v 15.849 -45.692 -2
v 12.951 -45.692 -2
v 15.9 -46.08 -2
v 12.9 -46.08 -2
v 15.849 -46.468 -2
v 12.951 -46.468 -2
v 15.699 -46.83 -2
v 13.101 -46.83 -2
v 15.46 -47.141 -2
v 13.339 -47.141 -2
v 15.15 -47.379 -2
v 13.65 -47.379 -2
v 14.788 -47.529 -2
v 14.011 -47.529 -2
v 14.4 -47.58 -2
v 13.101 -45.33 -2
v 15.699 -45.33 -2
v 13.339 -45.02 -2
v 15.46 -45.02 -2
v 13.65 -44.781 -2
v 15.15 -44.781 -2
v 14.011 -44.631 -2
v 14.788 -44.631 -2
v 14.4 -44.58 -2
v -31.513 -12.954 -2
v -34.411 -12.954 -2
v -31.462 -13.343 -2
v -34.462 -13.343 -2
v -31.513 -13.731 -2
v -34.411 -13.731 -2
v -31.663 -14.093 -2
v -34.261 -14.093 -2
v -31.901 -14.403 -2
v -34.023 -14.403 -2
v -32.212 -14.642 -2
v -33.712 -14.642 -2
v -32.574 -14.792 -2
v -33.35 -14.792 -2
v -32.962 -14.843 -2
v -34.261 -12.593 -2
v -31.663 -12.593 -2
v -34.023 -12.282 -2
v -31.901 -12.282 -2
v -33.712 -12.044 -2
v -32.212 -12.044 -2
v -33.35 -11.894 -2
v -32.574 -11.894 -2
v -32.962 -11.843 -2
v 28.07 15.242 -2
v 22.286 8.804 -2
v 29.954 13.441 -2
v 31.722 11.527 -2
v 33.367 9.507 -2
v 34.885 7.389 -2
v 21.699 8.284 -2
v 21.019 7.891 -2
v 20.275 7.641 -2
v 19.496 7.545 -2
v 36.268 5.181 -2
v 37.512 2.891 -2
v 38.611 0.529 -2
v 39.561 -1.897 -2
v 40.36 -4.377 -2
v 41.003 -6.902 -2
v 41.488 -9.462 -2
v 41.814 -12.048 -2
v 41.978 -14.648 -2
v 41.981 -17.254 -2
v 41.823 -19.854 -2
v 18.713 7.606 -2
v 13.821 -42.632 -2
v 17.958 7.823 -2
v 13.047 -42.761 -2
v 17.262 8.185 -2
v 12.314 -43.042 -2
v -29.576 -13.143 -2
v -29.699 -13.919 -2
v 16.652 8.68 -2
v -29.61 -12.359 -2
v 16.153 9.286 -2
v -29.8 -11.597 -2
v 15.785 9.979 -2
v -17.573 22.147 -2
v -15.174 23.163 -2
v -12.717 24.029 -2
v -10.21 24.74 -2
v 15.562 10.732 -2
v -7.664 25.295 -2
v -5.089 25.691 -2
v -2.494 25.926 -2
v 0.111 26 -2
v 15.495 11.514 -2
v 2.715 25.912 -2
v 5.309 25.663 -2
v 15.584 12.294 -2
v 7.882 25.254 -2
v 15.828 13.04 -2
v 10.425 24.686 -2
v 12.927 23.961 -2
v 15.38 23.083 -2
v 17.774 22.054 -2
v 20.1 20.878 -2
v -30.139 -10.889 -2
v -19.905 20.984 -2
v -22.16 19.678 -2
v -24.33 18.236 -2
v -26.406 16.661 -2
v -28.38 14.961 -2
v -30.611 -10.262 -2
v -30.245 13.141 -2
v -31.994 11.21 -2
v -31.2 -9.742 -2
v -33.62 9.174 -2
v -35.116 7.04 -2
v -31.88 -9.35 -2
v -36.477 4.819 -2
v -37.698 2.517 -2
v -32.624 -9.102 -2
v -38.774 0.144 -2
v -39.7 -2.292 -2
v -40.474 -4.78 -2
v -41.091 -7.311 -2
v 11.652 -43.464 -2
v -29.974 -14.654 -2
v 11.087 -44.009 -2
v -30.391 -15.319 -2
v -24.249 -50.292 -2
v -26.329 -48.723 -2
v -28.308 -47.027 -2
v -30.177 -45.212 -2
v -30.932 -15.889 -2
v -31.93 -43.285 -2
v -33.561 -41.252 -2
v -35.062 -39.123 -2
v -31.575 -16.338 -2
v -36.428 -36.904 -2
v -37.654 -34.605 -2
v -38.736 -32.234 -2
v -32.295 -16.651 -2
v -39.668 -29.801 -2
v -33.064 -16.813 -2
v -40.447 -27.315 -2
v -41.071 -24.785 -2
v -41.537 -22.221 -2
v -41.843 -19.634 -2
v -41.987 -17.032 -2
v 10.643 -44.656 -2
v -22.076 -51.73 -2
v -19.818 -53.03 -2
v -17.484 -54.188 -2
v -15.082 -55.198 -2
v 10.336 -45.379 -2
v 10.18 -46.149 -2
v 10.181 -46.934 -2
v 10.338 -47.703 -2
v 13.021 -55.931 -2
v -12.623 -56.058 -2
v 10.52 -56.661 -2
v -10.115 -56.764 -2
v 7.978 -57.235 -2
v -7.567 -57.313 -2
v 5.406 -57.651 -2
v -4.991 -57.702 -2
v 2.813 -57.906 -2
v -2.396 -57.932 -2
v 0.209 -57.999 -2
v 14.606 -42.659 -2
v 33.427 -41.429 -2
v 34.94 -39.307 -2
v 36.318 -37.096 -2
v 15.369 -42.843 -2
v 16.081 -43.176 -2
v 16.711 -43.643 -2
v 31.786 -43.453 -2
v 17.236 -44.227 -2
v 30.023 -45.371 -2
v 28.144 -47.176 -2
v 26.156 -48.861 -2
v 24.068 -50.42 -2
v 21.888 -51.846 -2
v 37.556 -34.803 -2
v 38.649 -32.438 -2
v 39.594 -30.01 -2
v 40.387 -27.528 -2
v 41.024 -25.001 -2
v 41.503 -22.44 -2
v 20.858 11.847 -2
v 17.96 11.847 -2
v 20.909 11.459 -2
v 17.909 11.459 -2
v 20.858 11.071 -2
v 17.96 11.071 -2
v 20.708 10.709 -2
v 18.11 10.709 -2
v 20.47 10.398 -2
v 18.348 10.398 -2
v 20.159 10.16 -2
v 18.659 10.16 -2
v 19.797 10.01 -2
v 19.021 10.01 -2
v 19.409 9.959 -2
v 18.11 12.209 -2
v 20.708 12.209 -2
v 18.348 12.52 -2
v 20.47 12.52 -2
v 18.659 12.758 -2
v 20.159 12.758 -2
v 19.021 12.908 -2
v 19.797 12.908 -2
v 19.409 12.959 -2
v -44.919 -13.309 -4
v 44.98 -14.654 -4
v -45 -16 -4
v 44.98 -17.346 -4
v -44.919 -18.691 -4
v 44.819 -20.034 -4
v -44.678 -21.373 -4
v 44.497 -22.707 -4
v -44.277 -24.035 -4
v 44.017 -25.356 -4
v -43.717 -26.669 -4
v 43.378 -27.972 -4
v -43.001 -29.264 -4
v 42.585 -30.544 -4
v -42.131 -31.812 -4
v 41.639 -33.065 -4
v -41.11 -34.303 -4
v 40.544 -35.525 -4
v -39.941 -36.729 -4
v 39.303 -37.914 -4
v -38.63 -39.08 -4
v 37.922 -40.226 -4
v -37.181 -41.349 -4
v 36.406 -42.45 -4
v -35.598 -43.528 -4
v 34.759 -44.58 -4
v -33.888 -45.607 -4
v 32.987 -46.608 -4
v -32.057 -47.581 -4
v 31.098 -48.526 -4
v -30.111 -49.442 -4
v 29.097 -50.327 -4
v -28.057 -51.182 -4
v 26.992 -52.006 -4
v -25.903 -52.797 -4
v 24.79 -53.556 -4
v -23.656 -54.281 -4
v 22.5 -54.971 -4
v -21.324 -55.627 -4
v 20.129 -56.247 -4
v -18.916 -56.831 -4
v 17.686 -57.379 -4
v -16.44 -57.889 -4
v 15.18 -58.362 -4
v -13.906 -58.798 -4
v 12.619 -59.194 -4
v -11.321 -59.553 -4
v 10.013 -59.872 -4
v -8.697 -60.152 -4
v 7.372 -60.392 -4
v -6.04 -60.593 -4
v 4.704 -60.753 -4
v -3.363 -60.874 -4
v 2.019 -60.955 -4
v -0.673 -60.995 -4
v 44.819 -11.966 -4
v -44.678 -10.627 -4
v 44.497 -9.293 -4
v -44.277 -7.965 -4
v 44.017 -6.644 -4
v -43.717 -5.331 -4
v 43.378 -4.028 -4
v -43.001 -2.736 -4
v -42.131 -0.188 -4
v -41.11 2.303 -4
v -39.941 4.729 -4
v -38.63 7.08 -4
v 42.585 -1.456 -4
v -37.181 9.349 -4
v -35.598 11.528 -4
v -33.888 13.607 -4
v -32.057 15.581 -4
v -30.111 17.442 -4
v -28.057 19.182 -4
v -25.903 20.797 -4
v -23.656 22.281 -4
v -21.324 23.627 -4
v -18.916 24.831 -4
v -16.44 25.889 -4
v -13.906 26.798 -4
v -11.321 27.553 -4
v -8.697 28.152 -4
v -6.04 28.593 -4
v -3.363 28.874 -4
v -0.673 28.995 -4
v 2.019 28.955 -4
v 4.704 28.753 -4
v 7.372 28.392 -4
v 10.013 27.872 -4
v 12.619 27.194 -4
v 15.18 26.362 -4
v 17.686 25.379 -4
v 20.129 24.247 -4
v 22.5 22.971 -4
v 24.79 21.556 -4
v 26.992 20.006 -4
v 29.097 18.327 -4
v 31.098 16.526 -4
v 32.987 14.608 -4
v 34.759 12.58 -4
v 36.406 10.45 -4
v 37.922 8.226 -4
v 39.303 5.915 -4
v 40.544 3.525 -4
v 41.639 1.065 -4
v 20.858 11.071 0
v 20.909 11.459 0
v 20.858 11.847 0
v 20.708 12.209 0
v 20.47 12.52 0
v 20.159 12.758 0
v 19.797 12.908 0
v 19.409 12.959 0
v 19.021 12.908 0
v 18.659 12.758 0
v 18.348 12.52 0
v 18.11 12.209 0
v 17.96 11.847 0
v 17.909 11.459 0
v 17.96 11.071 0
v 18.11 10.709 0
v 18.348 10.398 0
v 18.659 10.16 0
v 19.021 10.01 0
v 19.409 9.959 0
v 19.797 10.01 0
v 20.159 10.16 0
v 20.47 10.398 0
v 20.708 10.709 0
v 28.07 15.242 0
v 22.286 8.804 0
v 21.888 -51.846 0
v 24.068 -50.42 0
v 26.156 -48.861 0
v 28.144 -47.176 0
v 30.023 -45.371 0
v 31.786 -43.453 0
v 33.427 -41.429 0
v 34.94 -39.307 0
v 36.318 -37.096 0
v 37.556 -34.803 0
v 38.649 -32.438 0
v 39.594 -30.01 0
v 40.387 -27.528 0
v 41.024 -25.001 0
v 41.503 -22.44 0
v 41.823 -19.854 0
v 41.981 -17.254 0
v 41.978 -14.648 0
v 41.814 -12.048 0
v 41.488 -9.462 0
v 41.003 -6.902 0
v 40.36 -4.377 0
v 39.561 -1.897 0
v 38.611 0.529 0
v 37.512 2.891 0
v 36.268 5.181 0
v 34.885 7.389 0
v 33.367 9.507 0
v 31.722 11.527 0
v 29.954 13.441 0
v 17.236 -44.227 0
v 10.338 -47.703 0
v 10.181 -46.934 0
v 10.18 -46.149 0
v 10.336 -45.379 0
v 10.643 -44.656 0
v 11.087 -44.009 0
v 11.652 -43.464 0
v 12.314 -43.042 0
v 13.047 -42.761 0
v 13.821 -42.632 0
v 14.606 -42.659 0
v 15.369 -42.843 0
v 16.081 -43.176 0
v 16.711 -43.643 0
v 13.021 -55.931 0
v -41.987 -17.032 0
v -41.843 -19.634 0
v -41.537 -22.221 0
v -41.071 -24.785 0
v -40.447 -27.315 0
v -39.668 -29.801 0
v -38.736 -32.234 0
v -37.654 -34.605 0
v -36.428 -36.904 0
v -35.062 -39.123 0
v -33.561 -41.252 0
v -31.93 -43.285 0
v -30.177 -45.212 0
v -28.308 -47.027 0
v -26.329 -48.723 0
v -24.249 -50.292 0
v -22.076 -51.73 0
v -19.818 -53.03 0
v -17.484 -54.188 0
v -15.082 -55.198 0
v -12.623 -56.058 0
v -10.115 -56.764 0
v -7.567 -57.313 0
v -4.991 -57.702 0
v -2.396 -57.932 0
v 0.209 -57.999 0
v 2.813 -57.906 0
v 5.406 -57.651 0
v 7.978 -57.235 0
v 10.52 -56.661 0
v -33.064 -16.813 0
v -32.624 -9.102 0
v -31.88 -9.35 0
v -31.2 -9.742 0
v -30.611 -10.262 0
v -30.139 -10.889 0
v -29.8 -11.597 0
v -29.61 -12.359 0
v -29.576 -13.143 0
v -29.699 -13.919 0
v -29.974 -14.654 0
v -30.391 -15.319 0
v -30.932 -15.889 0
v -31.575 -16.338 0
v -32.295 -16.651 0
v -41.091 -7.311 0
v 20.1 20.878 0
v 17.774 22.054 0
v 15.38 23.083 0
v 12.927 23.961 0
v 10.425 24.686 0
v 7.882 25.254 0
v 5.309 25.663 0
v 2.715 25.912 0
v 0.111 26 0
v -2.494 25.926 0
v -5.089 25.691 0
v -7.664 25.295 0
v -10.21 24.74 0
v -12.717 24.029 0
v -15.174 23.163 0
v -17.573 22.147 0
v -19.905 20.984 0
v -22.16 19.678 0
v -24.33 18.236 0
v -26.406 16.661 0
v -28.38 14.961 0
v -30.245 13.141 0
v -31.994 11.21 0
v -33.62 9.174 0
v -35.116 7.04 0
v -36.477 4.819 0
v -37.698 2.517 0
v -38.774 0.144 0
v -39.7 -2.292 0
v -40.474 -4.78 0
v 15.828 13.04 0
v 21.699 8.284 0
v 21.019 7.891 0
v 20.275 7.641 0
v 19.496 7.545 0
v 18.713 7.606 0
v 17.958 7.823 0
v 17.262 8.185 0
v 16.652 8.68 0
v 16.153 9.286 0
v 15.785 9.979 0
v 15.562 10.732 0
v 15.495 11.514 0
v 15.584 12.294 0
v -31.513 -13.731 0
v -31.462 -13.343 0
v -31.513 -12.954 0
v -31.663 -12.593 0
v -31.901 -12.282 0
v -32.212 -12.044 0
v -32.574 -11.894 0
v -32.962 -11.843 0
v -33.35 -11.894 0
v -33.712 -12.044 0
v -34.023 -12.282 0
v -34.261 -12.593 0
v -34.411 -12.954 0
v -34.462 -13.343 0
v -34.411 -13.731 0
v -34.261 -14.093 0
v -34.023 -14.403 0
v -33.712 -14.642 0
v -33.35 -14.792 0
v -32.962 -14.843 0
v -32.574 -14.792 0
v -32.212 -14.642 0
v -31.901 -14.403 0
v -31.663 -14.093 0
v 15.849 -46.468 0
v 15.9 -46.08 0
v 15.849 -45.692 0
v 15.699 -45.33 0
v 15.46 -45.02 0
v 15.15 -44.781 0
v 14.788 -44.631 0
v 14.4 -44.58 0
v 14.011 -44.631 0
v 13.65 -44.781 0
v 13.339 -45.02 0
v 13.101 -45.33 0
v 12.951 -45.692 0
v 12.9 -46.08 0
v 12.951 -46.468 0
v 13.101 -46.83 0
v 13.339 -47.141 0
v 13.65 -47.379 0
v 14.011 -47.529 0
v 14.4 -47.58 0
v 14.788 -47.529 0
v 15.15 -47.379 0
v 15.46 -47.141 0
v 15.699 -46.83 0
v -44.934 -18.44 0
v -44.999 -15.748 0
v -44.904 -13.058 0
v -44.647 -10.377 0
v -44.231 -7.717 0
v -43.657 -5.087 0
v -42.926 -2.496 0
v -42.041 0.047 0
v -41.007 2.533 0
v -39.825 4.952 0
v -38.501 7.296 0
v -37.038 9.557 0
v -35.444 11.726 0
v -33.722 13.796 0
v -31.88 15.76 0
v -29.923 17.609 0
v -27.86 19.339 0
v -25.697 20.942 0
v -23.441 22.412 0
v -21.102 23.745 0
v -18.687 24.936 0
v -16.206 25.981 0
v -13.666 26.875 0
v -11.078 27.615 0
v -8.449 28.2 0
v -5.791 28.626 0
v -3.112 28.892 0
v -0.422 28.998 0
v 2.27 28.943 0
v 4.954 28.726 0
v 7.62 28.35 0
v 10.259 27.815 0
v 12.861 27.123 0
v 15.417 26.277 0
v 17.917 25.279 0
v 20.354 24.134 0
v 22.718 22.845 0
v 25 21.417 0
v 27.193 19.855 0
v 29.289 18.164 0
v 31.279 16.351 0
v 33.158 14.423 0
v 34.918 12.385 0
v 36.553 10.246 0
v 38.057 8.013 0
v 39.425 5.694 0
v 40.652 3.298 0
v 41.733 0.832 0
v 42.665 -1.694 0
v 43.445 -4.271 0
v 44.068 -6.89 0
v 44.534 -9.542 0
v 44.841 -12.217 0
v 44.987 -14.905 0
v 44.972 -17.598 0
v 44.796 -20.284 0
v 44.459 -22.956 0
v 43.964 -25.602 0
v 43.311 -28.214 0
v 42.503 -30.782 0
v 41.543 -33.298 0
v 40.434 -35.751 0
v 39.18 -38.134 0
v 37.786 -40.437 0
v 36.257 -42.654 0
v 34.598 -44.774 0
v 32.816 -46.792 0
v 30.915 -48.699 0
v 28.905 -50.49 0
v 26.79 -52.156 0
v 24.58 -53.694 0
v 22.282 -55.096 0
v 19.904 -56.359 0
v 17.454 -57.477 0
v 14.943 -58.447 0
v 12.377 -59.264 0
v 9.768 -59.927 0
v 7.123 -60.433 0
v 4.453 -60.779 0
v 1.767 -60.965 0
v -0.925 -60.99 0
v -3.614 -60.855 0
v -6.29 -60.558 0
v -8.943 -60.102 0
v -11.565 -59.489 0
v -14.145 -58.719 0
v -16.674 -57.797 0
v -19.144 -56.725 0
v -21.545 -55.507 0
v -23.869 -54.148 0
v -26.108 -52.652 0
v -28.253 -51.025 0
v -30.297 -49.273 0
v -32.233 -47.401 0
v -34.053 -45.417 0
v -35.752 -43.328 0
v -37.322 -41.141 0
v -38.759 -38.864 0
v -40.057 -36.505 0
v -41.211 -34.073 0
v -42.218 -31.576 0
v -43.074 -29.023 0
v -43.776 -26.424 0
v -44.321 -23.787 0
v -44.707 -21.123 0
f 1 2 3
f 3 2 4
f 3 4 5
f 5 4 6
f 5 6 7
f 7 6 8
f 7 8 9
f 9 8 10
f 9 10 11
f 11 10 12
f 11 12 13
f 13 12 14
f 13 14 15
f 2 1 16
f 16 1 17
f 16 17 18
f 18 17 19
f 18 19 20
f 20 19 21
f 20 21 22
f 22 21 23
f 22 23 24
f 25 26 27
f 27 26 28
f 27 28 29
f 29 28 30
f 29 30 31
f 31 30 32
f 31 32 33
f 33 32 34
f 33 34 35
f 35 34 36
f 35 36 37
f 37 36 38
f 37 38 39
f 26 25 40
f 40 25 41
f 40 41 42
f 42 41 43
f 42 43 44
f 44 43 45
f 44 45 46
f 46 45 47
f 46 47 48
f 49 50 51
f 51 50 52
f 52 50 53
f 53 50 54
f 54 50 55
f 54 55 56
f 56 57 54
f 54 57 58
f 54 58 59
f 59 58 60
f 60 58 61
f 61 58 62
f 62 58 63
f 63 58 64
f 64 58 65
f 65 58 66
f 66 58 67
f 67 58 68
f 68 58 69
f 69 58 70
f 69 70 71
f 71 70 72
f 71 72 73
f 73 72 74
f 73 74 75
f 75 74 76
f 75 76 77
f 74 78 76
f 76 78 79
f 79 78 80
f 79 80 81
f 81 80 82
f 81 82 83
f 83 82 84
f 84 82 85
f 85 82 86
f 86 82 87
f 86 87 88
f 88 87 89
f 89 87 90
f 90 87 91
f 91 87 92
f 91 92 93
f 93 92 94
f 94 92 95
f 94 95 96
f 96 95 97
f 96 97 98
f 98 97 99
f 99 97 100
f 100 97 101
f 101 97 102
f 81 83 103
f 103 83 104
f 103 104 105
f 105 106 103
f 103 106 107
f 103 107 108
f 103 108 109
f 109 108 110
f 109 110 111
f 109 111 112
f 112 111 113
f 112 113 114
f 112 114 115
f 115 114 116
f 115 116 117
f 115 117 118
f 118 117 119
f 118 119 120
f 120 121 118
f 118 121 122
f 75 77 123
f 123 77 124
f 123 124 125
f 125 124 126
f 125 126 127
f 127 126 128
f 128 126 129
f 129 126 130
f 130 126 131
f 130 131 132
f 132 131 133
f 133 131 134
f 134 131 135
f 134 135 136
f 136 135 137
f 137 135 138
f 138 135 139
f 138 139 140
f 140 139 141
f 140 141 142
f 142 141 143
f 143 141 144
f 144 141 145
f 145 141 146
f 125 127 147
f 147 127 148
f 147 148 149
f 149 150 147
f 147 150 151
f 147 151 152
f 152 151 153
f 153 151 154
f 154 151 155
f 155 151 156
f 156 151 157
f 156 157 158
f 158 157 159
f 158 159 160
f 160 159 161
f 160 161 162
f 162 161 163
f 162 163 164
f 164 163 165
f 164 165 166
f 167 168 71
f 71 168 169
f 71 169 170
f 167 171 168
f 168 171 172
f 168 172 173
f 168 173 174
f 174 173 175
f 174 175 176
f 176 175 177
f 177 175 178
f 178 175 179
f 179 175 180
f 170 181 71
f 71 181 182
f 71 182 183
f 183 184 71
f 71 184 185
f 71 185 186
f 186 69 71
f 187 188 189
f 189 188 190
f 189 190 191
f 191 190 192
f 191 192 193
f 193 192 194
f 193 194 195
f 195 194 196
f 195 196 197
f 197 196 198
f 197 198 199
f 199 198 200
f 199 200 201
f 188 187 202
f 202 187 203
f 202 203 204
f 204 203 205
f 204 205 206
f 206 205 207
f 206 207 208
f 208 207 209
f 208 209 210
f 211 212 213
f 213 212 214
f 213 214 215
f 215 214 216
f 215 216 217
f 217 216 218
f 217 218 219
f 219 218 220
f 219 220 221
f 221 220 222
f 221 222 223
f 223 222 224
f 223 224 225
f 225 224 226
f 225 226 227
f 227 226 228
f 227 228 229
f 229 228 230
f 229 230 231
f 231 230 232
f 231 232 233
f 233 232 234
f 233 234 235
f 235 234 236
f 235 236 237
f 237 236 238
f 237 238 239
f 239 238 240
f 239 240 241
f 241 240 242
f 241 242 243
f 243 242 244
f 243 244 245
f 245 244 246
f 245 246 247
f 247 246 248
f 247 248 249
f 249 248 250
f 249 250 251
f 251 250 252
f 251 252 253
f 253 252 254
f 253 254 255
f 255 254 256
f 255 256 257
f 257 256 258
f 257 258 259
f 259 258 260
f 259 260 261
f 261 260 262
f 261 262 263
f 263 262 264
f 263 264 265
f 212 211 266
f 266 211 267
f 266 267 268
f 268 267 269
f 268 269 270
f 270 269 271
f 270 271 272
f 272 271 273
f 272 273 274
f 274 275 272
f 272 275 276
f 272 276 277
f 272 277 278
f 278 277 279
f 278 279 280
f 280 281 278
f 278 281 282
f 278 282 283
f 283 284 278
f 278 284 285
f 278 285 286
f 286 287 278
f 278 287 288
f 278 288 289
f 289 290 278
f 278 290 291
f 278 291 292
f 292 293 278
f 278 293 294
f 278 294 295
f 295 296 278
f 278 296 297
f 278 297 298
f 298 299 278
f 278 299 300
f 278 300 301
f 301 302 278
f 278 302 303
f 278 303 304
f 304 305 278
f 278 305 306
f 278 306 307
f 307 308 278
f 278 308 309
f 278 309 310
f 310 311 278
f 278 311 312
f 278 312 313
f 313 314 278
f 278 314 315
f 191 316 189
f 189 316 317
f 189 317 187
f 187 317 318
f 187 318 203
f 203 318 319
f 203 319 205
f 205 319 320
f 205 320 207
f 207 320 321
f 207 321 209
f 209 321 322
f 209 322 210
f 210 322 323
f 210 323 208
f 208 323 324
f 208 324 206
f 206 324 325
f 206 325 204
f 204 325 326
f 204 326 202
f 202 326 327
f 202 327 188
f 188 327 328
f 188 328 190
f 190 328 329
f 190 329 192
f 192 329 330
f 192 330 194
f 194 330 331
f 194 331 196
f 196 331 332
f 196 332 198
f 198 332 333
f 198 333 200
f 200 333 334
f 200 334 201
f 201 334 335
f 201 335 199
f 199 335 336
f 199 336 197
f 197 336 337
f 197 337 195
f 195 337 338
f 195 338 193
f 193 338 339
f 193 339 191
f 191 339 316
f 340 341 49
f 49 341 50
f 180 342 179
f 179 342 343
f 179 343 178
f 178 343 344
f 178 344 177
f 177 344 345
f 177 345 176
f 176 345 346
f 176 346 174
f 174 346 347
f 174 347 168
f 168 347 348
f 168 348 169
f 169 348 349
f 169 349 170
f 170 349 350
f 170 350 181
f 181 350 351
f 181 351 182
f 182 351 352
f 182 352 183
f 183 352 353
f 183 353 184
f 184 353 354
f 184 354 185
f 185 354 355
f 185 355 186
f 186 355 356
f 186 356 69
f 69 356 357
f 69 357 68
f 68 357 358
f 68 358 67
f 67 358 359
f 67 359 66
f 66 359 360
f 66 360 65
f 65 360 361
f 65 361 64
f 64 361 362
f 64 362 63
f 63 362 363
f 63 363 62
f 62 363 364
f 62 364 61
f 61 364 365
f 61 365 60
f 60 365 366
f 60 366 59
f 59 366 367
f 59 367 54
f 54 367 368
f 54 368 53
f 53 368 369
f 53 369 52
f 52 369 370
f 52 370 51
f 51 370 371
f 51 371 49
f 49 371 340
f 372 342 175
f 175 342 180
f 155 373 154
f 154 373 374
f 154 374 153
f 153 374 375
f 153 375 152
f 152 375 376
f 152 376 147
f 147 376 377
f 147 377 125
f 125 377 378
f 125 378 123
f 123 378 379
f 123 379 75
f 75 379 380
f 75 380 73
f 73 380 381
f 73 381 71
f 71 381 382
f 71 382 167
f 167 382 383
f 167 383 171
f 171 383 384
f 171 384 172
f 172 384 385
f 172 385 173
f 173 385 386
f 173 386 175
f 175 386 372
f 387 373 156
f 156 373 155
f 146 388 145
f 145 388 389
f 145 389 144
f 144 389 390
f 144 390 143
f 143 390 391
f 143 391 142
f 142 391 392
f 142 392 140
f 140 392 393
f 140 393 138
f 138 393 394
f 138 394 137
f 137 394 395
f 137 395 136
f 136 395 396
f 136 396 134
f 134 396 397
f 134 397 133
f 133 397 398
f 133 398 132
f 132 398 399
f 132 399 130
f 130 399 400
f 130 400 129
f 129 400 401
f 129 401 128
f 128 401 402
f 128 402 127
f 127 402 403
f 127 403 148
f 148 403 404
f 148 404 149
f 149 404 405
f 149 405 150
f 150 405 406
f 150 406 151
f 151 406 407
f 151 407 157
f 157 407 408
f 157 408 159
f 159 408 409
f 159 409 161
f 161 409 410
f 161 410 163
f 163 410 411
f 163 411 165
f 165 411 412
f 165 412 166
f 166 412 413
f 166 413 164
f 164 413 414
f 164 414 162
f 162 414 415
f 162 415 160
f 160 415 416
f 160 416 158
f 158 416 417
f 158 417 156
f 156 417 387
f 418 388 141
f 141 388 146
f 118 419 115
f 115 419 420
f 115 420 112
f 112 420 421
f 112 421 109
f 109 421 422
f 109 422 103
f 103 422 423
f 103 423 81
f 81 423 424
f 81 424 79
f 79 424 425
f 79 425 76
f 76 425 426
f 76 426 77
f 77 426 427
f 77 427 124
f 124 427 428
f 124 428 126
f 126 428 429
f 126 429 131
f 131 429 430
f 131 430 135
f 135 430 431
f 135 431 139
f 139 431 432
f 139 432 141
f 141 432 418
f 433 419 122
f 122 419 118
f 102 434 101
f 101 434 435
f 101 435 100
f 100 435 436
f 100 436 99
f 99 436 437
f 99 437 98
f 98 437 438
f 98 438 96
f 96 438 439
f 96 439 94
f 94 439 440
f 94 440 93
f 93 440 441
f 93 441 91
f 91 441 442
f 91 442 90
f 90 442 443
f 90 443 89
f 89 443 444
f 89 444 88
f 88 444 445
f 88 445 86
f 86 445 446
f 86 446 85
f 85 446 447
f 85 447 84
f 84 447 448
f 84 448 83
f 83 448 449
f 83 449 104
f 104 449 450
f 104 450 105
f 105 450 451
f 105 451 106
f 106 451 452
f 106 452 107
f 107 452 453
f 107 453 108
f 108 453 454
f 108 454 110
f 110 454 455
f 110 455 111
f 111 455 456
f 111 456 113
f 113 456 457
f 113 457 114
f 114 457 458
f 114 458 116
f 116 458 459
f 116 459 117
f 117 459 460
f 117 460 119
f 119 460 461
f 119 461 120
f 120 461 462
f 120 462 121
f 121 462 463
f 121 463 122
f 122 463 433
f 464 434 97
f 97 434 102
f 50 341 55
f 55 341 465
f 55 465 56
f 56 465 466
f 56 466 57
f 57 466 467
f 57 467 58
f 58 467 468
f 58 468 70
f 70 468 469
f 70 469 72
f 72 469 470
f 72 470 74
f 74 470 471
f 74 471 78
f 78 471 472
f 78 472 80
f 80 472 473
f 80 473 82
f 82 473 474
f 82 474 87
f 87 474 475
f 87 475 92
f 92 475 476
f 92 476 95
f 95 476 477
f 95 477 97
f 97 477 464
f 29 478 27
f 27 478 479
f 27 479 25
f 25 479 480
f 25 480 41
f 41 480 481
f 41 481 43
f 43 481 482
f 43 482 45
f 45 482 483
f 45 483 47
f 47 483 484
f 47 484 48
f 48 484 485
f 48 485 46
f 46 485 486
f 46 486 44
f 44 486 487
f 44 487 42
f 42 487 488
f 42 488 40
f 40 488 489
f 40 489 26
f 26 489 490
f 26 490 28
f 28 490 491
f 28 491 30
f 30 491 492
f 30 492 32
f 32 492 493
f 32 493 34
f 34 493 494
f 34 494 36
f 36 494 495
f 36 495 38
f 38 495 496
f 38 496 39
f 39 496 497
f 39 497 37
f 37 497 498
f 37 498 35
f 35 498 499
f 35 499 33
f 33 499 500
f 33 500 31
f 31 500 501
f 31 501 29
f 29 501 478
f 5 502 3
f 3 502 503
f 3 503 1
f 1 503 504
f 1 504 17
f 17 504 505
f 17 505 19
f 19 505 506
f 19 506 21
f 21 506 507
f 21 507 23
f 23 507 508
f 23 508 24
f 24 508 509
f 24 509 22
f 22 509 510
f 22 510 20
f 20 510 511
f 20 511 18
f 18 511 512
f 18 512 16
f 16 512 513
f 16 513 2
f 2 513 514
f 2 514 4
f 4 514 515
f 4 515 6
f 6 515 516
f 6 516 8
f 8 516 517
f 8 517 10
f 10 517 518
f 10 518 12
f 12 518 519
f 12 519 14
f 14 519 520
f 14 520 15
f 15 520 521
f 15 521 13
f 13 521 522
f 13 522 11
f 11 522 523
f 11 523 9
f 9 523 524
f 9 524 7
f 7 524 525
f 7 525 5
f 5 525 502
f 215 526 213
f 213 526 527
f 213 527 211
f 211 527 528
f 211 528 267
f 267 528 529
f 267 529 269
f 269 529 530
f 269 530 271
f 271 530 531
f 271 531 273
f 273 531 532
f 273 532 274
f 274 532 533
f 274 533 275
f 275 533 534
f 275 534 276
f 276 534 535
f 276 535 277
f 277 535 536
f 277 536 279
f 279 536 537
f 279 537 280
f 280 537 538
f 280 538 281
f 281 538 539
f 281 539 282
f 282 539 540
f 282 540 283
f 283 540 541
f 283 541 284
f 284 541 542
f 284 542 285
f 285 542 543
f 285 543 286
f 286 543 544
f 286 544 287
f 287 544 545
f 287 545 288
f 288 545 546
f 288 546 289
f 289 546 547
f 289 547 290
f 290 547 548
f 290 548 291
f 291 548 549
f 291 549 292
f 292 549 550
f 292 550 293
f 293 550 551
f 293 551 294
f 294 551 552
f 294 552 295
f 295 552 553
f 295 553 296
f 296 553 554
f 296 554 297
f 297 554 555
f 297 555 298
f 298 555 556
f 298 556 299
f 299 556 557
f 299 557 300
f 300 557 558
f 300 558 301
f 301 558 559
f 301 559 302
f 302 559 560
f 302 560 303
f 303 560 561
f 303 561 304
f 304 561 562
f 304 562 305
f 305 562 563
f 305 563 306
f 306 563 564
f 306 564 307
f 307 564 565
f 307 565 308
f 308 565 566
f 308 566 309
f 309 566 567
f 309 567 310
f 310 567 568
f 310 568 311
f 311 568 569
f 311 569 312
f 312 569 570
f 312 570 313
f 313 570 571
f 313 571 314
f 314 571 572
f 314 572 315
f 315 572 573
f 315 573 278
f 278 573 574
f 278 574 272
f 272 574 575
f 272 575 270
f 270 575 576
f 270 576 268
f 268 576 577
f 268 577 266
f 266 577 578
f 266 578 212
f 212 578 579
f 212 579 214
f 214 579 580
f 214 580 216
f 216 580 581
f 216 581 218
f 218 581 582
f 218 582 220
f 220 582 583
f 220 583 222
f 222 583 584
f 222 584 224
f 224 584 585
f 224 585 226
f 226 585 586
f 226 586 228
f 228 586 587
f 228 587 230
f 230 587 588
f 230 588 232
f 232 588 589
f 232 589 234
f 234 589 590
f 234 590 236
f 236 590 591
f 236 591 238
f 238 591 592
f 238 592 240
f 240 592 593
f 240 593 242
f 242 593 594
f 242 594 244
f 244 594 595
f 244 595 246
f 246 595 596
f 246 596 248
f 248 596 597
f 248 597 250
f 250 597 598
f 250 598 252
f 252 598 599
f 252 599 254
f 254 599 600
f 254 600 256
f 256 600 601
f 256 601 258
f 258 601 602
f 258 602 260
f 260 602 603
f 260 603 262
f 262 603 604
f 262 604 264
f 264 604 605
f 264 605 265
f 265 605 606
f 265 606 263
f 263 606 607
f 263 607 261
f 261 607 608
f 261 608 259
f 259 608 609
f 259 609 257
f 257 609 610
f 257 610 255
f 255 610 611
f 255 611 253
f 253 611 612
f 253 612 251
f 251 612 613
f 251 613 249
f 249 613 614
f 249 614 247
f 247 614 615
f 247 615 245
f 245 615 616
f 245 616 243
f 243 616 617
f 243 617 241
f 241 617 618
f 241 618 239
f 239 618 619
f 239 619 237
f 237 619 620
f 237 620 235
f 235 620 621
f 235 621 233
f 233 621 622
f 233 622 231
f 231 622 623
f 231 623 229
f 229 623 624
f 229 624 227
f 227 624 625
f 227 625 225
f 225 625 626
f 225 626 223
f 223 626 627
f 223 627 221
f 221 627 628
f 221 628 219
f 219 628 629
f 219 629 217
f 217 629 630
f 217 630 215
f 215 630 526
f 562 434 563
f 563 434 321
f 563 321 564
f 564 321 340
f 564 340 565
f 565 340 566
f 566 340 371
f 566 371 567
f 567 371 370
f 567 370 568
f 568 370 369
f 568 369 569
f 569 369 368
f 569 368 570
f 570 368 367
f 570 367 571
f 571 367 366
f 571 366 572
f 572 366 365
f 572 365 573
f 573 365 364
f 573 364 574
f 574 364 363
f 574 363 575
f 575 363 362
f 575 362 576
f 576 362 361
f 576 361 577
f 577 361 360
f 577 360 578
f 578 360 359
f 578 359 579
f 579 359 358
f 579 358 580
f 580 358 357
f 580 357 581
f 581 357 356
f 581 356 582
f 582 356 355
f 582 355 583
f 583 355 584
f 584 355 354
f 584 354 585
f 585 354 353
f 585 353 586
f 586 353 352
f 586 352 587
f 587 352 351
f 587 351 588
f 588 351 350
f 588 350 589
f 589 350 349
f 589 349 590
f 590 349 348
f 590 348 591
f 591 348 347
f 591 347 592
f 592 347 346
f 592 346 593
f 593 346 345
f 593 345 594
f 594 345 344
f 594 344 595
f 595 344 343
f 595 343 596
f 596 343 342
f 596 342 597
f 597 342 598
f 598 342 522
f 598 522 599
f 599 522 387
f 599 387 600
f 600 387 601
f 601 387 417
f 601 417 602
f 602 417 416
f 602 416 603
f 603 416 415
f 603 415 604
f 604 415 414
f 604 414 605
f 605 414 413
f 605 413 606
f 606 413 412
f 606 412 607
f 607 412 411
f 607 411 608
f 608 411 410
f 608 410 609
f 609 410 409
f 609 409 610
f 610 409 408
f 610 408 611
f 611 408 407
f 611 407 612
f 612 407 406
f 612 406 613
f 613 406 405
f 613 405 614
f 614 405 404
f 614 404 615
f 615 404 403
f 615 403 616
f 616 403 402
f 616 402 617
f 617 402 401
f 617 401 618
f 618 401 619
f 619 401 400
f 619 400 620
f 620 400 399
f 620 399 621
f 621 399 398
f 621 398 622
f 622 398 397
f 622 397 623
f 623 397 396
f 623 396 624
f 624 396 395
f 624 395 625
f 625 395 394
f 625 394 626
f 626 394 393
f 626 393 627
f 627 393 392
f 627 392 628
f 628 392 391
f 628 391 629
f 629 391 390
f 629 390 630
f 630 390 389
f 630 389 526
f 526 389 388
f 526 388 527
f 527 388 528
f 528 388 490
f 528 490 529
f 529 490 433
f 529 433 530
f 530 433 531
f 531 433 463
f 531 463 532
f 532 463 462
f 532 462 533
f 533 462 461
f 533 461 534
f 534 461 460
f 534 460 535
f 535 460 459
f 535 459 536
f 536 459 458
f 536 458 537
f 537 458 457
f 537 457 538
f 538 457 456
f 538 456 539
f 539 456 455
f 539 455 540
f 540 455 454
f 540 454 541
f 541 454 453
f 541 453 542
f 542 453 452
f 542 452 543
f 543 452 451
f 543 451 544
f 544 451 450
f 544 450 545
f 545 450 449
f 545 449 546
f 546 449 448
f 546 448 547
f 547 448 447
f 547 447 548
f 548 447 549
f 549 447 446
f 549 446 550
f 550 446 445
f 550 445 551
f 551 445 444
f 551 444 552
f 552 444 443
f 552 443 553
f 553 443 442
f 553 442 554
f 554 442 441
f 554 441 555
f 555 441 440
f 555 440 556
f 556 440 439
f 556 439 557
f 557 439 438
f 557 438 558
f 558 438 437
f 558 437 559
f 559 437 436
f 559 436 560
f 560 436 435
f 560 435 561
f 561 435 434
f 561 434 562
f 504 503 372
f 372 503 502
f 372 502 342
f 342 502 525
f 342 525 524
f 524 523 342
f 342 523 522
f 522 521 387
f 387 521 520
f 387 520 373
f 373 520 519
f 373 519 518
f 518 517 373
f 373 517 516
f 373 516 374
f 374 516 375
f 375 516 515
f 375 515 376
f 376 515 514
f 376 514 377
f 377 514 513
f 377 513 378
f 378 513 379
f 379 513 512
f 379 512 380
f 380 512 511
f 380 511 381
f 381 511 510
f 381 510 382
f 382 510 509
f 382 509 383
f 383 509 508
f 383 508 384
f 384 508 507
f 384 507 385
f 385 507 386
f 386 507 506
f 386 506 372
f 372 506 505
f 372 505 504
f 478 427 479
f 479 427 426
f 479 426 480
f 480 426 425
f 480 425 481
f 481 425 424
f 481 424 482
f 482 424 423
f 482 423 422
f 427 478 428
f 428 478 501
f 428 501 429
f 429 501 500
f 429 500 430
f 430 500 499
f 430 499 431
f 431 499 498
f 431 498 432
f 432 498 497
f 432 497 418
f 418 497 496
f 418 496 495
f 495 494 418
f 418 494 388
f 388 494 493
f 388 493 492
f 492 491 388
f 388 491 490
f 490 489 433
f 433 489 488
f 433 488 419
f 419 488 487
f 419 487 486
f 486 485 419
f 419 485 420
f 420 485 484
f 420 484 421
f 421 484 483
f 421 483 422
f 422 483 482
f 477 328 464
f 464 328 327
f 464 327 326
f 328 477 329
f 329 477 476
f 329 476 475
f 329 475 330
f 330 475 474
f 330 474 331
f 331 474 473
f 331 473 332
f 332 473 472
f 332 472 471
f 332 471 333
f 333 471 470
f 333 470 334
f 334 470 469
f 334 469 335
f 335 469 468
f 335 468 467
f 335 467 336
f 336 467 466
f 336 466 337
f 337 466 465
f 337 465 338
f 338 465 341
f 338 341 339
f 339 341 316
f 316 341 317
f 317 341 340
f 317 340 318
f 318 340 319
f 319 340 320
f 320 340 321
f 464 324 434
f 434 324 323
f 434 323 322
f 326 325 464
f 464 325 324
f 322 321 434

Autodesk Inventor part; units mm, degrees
ref_plane "YZ Plane" through (0, 0, 0) normal (1, 0, 0) x (0, 1, 0)
ref_plane "XZ Plane" through (0, 0, 0) normal (0, 1, 0) x (-1, 0, 0)
ref_plane "XY Plane" through (0, 0, 0) normal (0, 0, 1) x (1, 0, 0)
sketch "Esquisse1" plane through (0, 0, 0) normal (0, 0, 1) x (1, 0, 0)
  circle A0 centre (-32.9619, -13.3427) radius 1.5 projected
  circle A1 centre (14.3997, -46.0802) radius 1.5 projected
  circle A2 centre (19.4091, 11.459) radius 1.5 projected
  arc A3 (-25, 21.4166) -> (25, 21.4166) centre (0, -16) ccw projected
  line L0 (25, 61) -> (25, 21.4166) projected
  line L1 (-25, 61) -> (25, 61) projected
  line L2 (-25, 21.4166) -> (-25, 61) projected
  circle A4 centre (0, -16) radius 42
  line L3 (0, -16) -> (24.2426, 18.2972) construction
  arc A5 (15.8278, 13.0403) -> (22.2865, 8.8044) centre (19.4091, 11.459) ccw
  line L4 (22.2865, 8.8044) -> (28.0705, 15.2418)
  line L5 (15.8278, 13.0403) -> (20.0997, 20.8782)
  line L6 (0, -16) -> (-41.8235, -12.1539) construction
  arc A6 (-33.0635, -16.8129) -> (-32.6245, -9.1015) centre (-33.4847, -12.9207) ccw
  line L7 (-32.6245, -9.1015) -> (-41.0914, -7.3112)
  line L8 (-33.0635, -16.8129) -> (-41.9873, -17.0323)
  line L9 (0, -16) -> (17.5809, -54.1433) construction
  arc A7 (17.2357, -44.2274) -> (10.338, -47.7029) centre (14.0756, -46.5383) ccw
  line L10 (10.338, -47.7029) -> (13.021, -55.9306)
  line L11 (17.2357, -44.2274) -> (21.8876, -51.8459)
  circle A8 centre (0, -16) radius 45
  point P0 (0, 0)
  point P1 (25, 21.4166)
  point P2 (-25, 21.4166)
  dimension "d0" = 3
  dimension "d3" = 360
extrude "Extrusion1" add sketch "Esquisse1" against normal blind 2 contours A8 A3 | L4 A5 L5 A4 | A4 L10 A7 L11 | L7 A6 L8 A4
sketch "Esquisse2" plane through (0, -16, -2) normal (0, 0, -1) x (-1, 0, 0)
  circle A0 centre (0, 0) radius 45
  point P0 (0, 16)
extrude "Extrusion2" add sketch "Esquisse2" along normal blind 2
properties part number "clips Anemo"
